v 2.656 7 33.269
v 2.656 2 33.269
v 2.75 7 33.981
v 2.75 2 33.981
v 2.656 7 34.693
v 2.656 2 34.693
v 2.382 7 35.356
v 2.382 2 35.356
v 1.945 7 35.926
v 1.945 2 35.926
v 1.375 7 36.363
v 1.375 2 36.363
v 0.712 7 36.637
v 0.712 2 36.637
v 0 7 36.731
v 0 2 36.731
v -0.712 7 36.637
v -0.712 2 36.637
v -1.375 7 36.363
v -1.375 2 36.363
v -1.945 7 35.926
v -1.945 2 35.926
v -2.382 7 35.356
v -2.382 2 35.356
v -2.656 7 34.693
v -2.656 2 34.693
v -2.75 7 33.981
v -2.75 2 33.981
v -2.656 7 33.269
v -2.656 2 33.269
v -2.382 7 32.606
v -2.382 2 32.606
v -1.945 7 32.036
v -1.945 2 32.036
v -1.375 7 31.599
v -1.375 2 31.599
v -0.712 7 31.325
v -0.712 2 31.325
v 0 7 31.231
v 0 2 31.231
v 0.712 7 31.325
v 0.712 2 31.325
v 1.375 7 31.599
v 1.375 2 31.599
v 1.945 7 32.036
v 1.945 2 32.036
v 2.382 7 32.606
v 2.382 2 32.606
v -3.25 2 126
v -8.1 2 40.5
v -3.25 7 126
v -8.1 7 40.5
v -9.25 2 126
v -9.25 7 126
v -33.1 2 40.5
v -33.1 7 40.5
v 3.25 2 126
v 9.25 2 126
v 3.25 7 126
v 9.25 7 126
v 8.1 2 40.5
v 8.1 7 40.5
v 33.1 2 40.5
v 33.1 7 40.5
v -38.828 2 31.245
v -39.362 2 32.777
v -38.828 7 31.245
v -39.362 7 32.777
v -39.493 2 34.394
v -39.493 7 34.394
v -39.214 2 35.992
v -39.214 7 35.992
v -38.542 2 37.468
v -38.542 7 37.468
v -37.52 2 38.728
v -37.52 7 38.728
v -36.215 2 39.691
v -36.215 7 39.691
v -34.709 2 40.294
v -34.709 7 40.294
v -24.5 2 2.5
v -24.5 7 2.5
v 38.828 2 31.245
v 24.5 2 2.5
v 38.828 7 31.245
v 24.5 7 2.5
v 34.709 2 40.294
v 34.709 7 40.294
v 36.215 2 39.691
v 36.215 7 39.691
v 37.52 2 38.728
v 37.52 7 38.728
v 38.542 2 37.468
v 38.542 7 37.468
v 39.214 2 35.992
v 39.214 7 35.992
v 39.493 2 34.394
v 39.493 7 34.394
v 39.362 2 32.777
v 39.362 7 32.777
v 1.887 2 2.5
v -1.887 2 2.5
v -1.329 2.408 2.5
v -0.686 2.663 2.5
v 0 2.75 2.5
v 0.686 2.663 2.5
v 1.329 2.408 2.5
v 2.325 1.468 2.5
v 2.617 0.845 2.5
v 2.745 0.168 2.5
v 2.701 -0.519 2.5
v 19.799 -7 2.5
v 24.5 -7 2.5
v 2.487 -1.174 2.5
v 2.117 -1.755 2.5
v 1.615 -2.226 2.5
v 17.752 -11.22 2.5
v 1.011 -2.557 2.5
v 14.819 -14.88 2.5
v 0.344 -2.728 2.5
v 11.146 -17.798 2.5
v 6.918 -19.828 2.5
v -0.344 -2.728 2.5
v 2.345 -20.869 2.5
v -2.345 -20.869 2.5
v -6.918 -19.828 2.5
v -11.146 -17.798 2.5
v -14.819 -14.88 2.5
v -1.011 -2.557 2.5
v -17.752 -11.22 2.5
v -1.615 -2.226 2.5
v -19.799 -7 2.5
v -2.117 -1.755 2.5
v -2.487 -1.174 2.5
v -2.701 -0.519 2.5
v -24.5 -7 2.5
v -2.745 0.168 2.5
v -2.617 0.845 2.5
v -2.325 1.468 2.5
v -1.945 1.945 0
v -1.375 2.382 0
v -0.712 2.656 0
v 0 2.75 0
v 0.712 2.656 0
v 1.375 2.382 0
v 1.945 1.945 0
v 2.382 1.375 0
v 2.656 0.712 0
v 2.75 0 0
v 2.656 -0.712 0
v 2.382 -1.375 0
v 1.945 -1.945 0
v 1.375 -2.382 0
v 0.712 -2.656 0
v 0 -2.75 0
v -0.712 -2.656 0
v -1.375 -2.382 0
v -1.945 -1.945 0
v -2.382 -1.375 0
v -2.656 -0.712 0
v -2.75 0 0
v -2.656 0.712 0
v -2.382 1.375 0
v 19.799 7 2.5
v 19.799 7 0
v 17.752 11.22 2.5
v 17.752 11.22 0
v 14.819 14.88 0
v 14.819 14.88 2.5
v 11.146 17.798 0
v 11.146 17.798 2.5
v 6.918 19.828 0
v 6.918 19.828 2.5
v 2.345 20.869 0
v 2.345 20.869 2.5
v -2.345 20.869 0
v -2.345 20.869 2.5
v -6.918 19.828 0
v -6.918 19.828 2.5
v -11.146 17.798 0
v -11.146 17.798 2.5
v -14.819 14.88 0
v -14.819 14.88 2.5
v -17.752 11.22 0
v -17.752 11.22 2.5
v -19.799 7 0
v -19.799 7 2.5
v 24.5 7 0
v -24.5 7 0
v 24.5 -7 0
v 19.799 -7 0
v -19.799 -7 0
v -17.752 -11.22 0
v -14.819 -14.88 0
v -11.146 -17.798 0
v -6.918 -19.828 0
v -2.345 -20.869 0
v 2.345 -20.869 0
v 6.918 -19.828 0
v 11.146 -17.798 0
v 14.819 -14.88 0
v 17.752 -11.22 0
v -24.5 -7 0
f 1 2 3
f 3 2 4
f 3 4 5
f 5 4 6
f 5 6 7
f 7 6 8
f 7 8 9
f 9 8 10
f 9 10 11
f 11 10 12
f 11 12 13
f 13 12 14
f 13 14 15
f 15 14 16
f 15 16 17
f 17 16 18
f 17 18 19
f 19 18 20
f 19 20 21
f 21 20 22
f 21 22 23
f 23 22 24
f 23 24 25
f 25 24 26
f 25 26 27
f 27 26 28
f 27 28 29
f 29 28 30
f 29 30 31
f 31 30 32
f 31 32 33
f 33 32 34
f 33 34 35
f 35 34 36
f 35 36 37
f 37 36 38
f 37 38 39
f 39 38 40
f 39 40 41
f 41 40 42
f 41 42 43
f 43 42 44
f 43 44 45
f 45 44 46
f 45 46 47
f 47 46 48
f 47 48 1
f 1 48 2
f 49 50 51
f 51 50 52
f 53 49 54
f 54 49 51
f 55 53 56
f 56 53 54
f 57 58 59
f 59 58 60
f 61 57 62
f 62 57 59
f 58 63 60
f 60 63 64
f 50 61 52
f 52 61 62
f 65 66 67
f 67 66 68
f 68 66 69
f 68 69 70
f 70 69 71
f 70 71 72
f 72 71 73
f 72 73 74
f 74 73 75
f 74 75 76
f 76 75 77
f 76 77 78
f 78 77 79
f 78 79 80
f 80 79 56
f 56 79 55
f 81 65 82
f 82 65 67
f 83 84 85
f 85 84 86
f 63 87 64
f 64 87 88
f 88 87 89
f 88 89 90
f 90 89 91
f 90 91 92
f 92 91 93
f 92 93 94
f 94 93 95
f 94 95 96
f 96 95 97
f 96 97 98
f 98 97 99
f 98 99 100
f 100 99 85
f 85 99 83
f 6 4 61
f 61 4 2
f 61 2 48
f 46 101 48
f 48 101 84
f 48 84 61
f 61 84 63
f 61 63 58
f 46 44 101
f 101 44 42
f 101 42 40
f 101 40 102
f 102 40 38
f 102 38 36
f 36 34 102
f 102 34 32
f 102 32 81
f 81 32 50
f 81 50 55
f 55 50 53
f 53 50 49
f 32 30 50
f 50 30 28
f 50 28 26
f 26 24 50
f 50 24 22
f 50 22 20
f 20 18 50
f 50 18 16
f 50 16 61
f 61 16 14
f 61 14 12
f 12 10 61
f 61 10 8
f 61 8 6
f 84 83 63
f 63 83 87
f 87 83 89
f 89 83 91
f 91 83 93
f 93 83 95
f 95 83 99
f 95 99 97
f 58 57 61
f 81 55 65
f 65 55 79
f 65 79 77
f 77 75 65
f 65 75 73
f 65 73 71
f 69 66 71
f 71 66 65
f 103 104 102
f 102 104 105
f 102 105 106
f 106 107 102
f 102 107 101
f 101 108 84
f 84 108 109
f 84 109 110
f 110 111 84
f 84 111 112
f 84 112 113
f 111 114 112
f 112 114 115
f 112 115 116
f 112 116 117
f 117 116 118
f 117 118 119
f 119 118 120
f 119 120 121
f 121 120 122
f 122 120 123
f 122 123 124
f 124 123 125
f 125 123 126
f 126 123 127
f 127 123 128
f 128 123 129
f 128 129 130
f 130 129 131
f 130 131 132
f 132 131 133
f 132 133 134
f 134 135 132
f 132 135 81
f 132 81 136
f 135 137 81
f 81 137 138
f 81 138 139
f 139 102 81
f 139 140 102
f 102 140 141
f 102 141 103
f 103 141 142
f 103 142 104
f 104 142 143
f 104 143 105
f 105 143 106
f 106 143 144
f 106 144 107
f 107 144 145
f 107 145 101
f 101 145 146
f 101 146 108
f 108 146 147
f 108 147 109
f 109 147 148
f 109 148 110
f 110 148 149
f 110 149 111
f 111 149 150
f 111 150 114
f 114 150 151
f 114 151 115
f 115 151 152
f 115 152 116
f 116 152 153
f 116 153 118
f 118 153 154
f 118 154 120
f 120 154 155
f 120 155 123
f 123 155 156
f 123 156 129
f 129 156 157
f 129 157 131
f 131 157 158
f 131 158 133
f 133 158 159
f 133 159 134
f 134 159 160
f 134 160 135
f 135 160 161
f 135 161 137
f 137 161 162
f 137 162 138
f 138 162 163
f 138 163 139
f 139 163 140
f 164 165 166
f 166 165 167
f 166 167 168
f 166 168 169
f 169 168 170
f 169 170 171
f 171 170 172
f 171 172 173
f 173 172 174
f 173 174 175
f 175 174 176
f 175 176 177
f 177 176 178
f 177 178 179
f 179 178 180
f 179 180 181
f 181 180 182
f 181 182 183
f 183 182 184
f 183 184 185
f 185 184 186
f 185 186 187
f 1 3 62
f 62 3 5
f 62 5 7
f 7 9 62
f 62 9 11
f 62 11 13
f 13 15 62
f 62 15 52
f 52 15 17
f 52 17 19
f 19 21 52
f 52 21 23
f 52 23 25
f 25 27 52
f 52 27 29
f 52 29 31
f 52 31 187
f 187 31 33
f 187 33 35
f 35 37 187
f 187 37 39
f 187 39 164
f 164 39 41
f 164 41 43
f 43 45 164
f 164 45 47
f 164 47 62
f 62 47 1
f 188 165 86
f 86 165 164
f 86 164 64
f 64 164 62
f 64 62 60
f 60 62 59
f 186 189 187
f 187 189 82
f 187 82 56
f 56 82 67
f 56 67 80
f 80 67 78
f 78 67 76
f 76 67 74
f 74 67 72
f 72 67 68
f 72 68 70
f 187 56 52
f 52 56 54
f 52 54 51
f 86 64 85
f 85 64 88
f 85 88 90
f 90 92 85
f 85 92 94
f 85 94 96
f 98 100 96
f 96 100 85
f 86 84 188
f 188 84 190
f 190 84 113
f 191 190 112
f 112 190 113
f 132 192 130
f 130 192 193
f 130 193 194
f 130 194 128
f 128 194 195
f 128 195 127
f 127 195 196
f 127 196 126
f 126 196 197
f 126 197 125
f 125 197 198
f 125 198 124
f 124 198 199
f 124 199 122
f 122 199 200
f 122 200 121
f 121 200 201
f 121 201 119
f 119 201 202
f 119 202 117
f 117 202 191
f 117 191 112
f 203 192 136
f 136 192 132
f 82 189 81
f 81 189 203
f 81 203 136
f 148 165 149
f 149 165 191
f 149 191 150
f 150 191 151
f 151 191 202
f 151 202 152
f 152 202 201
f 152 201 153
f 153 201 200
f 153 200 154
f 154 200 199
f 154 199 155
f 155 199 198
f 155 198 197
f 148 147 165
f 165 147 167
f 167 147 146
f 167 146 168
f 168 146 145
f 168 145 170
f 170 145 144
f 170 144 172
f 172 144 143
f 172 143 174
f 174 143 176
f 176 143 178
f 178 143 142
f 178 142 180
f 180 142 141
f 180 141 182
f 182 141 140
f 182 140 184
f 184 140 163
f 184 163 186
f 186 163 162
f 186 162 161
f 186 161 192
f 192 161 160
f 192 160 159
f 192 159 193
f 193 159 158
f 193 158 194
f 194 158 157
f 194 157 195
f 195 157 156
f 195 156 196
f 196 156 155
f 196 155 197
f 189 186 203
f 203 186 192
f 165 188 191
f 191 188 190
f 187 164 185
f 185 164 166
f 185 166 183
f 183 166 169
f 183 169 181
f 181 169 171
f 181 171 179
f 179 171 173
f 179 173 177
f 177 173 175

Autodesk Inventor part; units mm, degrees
ref_plane "YZ Plane" through (0, 0, 0) normal (1, 0, 0) x (0, 1, 0)
sketch "Sketch2" plane through (0, 0, 0) normal (0, 0, 1) x (1, 0, 0)
  line L0 (-24.5, 0) -> (-24.5, 7)
  line L1 (-24.5, 0) -> (-24.5, -7)
  line L2 (-24.5, 7) -> (-19.799, 7)
  line L3 (-24.5, -7) -> (-19.799, -7)
  line L4 (24.5, 7) -> (19.799, 7)
  line L5 (24.5, 0) -> (24.5, 7)
  line L6 (24.5, 0) -> (24.5, -7)
  line L7 (24.5, -7) -> (19.799, -7)
  arc A0 (-19.799, -7) -> (19.799, -7) centre (0, 0) ccw
  arc A1 (19.799, 7) -> (-19.799, 7) centre (0, 0) ccw
  circle A2 centre (0, 0) radius 2.75
  point P0 (0, 0)
  point P1 (0, -4.75)
  point P2 (-27.5, 17.25)
  dimension "d0" = 5.5
extrude "Extrusion1" add sketch "Sketch2" along normal blind 2.5
ref_plane "Work Plane1" through (-24.5, -7, 2.5) normal (0, 0, 1) x (1, 0, 0)
sketch "Sketch3" plane through (-24.5, -7, 2.5) normal (0, 0, 1) x (1, 0, 0)
  line L0 (0, 14) -> (49, 14)
  line L1 (49, 14) -> (49, 9)
  line L2 (49, 9) -> (0, 9)
  line L3 (0, 9) -> (0, 14)
  dimension "d3" = 5
extrude "Extrusion2" add sketch "Sketch3" along normal blind 38
ref_plane "Work Plane2" through (-24.5, 2, 40.5) normal (0, -1, 0) x (1, 0, 0)
sketch "Sketch6" plane through (-24.5, 2, 40.5) normal (0, -1, 0) x (1, 0, 0)
  line L0 (0, -40.5) -> (0, -38) projected
  line L1 (-8.6, 0) -> (0, 0)
  line L2 (0, 0) -> (0, -38)
  arc A0 (-8.6, 0) -> (-14.3279, -9.2551) centre (-8.6, -6.4) ccw
  line L3 (0, -38) -> (-14.3279, -9.2551)
  line L4 (49, -40.5) -> (49, 0) projected
  arc A1 (63.3279, -9.2551) -> (57.6, 0) centre (57.6, -6.4) ccw
  line L5 (0, 0) -> (49, 0) projected
  line L6 (49, 0) -> (57.6, 0)
  line L7 (49, -38) -> (63.3279, -9.2551)
  point P0 (24.5, -40.5)
extrude "Extrusion5" add sketch "Sketch6" against normal blind 5
sketch "Sketch7" plane through (-24.5, 2, 40.5) normal (0, -1, 0) x (1, 0, 0)
  line L0 (24.5, -6.5) -> (116.5, -6.5) construction
  line L1 (15.25, 85.5) -> (-8.6, 0)
  line L2 (33.75, 85.5) -> (57.6, 0)
  line L3 (15.25, 85.5) -> (21.25, 85.5)
  line L4 (33.75, 85.5) -> (27.75, 85.5)
  line L5 (57.6, 0) -> (32.6, 0)
  line L6 (-8.6, 0) -> (16.4, 0)
  line L7 (21.25, 85.5) -> (16.4, 0)
  line L8 (27.75, 85.5) -> (32.6, 0)
  point P0 (24.5, -40.5)
sketch "Sketch8" plane through (-24.5, 2, 40.5) normal (0, -1, 0) x (1, 0, 0)
  circle A0 centre (24.5, -6.519) radius 2.75
  point P0 (24.5, -40.5)
  dimension "d35" = 5.5
extrude "Extrusion6" add sketch "Sketch7" against normal blind 5
extrude "Extrusion7" cut sketch "Sketch8" against normal blind 5
properties part number "gripper" material "ABS Plastic"
